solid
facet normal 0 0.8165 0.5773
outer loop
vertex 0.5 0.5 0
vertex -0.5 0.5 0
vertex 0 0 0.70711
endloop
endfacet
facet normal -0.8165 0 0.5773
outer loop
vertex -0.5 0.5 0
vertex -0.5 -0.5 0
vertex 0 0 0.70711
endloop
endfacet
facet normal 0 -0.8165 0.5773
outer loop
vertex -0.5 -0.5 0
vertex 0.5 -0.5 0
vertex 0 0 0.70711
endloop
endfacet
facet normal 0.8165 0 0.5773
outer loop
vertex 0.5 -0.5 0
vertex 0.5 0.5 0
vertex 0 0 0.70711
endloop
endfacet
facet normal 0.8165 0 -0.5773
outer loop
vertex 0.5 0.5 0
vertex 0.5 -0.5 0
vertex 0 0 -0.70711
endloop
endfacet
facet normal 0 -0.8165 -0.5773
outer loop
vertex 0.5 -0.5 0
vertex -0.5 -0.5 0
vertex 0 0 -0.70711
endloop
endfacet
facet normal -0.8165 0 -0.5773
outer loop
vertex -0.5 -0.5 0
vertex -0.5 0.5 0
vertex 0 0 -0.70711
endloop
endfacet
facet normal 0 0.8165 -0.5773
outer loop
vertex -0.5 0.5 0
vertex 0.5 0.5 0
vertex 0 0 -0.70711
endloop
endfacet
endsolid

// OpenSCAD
module myOctahedron (x) {
    scale ([x, x, x]) {
	polyhedron (
	    points = [
		// middle points, counterclockwise
		[0.5, 0.5, 0],
		[-0.5, 0.5, 0],
		[-0.5, -0.5, 0],
		[0.5, -0.5, 0],
		// top and bottom
		[0, 0, sqrt(2)/2],
		[0, 0, -sqrt(2)/2],
	    ],
	    faces = [
		[0, 1, 4],
		[1, 2, 4],
		[2, 3, 4],
		[3, 0, 4],
		[0, 3, 5],
		[3, 2, 5],
		[2, 1, 5],
		[1, 0, 5]
	    ]);
    }
}

myOctahedron(1);
